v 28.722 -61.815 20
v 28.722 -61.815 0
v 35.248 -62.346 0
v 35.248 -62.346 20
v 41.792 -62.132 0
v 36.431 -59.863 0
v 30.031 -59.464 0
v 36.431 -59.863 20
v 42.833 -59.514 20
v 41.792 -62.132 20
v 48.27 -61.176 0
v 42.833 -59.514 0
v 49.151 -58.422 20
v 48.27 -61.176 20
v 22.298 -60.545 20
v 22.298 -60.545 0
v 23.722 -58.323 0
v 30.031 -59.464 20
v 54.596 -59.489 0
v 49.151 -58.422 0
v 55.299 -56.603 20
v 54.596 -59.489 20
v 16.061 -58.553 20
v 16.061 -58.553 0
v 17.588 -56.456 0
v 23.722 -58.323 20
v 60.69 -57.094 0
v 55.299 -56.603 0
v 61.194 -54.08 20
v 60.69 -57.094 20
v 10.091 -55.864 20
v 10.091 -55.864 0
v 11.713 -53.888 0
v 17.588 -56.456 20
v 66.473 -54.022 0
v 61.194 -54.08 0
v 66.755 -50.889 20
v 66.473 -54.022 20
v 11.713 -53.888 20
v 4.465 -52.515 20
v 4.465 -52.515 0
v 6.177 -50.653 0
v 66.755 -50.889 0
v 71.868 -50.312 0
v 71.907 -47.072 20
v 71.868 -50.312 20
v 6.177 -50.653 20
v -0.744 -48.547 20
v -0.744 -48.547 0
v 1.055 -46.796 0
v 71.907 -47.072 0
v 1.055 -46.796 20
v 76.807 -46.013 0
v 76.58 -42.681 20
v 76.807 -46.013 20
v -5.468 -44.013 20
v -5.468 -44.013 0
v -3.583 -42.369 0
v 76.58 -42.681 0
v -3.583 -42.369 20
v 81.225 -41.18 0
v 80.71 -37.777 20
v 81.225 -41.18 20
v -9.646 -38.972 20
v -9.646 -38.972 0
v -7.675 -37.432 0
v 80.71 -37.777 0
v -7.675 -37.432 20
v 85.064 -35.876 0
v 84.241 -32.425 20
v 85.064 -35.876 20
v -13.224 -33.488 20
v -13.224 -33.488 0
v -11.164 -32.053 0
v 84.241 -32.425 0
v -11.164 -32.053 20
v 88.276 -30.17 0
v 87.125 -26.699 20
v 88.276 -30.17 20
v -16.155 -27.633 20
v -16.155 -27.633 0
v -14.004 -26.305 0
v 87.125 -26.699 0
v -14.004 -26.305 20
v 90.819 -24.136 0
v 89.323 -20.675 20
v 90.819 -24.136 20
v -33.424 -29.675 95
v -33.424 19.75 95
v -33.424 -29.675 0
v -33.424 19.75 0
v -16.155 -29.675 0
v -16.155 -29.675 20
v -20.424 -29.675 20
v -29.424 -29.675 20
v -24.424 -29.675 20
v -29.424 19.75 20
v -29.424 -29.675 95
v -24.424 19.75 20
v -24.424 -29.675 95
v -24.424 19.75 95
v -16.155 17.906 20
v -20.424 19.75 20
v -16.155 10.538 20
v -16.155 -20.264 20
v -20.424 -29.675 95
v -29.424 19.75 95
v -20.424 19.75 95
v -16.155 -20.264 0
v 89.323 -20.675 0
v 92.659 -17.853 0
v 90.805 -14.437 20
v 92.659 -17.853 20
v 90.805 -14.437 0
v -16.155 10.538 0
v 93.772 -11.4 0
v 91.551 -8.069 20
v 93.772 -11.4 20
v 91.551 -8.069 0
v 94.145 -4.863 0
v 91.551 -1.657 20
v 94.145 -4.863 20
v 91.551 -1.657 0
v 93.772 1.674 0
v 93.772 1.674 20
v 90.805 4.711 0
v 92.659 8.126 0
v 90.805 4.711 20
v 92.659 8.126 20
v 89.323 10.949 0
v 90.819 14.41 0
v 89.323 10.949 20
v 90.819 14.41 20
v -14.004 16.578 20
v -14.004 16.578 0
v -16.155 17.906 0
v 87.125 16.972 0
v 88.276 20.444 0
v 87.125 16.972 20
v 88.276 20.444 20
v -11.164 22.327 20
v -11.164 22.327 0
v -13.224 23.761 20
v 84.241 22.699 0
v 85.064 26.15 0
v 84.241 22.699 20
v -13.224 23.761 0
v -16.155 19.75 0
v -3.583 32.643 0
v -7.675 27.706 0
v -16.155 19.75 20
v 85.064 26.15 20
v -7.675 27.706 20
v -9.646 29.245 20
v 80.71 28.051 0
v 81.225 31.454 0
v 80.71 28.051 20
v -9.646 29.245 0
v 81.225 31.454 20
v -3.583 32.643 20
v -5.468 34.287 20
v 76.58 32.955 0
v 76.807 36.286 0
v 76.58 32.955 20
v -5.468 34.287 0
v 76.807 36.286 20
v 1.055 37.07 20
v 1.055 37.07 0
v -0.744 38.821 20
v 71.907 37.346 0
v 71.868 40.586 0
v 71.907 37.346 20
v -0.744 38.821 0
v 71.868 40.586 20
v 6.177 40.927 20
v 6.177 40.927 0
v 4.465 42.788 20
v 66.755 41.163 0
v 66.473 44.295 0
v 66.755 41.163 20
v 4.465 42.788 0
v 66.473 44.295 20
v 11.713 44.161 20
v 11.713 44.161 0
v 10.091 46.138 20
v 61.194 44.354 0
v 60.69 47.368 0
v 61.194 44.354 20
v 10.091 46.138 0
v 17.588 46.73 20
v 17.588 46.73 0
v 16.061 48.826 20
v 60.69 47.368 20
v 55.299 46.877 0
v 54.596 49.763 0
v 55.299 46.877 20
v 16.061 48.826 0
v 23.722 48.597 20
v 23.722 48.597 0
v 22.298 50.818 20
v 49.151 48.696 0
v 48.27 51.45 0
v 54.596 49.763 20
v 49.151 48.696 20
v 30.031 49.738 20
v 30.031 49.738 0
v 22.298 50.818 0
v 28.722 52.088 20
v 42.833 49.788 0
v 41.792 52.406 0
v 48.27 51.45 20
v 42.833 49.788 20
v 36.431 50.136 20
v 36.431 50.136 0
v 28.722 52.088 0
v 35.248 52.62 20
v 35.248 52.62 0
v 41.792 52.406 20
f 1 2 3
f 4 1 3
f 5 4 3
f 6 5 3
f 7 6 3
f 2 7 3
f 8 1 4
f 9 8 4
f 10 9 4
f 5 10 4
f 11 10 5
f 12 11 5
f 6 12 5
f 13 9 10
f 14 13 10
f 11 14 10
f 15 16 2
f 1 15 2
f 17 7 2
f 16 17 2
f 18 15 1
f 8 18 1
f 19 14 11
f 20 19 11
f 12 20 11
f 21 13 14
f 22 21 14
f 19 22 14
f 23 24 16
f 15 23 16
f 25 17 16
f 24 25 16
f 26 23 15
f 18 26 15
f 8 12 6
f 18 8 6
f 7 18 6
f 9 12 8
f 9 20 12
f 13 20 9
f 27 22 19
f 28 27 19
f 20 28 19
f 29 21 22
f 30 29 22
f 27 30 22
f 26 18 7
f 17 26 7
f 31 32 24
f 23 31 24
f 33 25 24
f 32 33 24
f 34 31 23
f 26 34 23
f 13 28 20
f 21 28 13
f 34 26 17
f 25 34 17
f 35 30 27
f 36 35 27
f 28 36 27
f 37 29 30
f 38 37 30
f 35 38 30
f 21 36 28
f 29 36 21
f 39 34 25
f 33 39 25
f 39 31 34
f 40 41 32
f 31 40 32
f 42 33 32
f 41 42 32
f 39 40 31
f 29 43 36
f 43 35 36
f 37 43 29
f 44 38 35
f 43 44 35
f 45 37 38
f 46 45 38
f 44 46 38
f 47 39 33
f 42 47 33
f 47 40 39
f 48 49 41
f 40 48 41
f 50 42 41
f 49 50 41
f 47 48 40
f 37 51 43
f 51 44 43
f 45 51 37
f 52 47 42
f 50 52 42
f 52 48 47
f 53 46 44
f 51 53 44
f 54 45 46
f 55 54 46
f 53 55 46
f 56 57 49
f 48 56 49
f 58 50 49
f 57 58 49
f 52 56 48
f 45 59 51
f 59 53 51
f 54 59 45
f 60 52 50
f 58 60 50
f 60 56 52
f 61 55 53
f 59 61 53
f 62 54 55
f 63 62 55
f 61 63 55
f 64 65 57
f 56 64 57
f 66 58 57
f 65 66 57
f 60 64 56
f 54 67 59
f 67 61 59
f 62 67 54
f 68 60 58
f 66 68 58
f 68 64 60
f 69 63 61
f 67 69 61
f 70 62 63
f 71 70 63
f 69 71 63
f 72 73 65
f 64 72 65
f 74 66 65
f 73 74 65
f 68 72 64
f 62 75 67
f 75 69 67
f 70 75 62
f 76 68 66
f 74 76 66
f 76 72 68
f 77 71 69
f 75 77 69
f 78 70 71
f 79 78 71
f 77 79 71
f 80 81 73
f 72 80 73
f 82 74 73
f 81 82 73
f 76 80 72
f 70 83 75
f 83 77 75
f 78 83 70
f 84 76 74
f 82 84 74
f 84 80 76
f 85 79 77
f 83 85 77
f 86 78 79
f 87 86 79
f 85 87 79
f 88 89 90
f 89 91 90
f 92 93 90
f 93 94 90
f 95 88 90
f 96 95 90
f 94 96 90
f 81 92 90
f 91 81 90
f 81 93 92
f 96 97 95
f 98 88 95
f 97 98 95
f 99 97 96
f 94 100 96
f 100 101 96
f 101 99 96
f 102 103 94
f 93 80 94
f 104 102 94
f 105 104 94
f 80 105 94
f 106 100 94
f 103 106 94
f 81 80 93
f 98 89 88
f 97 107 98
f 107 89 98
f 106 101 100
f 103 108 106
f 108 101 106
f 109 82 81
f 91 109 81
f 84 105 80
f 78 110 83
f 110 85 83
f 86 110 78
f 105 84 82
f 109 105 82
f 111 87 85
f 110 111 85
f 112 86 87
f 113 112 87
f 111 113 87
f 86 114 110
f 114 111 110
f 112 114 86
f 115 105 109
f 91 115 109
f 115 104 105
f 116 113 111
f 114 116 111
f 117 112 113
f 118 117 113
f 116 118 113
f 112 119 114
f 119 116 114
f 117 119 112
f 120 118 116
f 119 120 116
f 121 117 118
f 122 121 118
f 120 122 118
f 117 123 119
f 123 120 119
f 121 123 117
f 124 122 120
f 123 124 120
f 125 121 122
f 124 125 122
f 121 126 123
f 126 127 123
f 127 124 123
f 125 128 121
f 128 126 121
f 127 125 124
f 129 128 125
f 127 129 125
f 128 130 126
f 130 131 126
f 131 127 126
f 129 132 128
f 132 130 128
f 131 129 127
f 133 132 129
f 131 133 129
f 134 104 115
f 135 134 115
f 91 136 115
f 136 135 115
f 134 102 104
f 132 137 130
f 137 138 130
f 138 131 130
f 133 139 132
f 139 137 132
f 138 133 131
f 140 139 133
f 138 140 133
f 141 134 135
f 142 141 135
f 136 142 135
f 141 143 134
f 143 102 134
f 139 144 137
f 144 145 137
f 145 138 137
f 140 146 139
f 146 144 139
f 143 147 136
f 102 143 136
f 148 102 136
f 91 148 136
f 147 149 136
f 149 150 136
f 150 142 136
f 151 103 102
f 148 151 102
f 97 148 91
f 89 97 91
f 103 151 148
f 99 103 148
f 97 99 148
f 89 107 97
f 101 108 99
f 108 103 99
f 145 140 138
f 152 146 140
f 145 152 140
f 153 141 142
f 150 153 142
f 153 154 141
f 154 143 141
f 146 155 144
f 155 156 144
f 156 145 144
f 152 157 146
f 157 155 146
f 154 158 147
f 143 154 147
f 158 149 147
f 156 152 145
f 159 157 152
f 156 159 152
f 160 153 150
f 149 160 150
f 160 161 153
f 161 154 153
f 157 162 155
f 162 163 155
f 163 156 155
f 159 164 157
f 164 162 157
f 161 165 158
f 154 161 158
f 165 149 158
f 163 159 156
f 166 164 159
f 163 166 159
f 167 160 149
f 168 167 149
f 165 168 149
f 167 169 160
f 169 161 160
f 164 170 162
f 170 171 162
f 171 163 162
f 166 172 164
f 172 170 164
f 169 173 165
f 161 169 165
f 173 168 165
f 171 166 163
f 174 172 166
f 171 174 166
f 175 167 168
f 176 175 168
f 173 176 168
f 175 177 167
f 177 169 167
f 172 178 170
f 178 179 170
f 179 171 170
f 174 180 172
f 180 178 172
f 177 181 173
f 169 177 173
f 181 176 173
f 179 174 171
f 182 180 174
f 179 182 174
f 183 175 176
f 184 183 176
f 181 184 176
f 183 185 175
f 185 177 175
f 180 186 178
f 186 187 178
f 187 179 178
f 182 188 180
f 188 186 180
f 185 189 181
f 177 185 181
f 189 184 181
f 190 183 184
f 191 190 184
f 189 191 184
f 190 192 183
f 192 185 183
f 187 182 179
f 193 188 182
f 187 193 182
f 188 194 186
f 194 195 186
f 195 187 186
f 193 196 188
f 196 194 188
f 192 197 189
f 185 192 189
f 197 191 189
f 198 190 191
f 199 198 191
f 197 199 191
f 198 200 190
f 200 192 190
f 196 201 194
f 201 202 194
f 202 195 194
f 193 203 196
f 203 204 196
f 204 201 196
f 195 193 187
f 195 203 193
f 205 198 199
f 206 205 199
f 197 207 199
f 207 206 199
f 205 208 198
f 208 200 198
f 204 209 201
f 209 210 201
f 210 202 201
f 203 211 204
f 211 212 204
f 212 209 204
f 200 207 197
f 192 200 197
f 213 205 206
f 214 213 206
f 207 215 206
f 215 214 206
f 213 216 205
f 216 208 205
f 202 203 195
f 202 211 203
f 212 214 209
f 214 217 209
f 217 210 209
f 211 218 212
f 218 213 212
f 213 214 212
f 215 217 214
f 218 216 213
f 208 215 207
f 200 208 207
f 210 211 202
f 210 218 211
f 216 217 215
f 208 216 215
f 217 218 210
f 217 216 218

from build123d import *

# Parameters (mm, degrees)
SKETCH_1_R      = 57.5
SKETCH_1_R_2    = 55
SKETCH_1_W      = 17.269051877
SKETCH_1_H      = 49.42521744
EXTRUDE_1_DEPTH = 20
SKETCH_2_W      = 4
SKETCH_2_H      = 49.42521744
EXTRUDE_2_DEPTH = 75


with BuildPart() as part:
    # 草圖1 → 填料-伸長1 (new body)
    # profile 1 of 2: a face of its own
    with BuildSketch(Plane.XY):
        with Locations((36.644946032, -4.863123804)):
            Circle(SKETCH_1_R)
        with Locations((36.644946032, -4.863123804)):
            Circle(SKETCH_1_R_2, mode=Mode.SUBTRACT)
    # profile 2 of 2: a face of its own
    with BuildSketch(Plane.XY):
        with Locations((-24.789209782, -4.962371229)):
            Rectangle(SKETCH_1_W, SKETCH_1_H)
    extrude(amount=EXTRUDE_1_DEPTH)

    # 草圖2 → 填料-伸長2 (add)
    with BuildSketch(Plane.XY.offset(20)):
        with Locations((-31.42373572, -4.962371229)):
            Rectangle(SKETCH_2_W, SKETCH_2_H)
        with Locations((-22.42373572, -4.962371229)):
            Rectangle(SKETCH_2_W, SKETCH_2_H)
    extrude(amount=EXTRUDE_2_DEPTH)


solid = part.part
